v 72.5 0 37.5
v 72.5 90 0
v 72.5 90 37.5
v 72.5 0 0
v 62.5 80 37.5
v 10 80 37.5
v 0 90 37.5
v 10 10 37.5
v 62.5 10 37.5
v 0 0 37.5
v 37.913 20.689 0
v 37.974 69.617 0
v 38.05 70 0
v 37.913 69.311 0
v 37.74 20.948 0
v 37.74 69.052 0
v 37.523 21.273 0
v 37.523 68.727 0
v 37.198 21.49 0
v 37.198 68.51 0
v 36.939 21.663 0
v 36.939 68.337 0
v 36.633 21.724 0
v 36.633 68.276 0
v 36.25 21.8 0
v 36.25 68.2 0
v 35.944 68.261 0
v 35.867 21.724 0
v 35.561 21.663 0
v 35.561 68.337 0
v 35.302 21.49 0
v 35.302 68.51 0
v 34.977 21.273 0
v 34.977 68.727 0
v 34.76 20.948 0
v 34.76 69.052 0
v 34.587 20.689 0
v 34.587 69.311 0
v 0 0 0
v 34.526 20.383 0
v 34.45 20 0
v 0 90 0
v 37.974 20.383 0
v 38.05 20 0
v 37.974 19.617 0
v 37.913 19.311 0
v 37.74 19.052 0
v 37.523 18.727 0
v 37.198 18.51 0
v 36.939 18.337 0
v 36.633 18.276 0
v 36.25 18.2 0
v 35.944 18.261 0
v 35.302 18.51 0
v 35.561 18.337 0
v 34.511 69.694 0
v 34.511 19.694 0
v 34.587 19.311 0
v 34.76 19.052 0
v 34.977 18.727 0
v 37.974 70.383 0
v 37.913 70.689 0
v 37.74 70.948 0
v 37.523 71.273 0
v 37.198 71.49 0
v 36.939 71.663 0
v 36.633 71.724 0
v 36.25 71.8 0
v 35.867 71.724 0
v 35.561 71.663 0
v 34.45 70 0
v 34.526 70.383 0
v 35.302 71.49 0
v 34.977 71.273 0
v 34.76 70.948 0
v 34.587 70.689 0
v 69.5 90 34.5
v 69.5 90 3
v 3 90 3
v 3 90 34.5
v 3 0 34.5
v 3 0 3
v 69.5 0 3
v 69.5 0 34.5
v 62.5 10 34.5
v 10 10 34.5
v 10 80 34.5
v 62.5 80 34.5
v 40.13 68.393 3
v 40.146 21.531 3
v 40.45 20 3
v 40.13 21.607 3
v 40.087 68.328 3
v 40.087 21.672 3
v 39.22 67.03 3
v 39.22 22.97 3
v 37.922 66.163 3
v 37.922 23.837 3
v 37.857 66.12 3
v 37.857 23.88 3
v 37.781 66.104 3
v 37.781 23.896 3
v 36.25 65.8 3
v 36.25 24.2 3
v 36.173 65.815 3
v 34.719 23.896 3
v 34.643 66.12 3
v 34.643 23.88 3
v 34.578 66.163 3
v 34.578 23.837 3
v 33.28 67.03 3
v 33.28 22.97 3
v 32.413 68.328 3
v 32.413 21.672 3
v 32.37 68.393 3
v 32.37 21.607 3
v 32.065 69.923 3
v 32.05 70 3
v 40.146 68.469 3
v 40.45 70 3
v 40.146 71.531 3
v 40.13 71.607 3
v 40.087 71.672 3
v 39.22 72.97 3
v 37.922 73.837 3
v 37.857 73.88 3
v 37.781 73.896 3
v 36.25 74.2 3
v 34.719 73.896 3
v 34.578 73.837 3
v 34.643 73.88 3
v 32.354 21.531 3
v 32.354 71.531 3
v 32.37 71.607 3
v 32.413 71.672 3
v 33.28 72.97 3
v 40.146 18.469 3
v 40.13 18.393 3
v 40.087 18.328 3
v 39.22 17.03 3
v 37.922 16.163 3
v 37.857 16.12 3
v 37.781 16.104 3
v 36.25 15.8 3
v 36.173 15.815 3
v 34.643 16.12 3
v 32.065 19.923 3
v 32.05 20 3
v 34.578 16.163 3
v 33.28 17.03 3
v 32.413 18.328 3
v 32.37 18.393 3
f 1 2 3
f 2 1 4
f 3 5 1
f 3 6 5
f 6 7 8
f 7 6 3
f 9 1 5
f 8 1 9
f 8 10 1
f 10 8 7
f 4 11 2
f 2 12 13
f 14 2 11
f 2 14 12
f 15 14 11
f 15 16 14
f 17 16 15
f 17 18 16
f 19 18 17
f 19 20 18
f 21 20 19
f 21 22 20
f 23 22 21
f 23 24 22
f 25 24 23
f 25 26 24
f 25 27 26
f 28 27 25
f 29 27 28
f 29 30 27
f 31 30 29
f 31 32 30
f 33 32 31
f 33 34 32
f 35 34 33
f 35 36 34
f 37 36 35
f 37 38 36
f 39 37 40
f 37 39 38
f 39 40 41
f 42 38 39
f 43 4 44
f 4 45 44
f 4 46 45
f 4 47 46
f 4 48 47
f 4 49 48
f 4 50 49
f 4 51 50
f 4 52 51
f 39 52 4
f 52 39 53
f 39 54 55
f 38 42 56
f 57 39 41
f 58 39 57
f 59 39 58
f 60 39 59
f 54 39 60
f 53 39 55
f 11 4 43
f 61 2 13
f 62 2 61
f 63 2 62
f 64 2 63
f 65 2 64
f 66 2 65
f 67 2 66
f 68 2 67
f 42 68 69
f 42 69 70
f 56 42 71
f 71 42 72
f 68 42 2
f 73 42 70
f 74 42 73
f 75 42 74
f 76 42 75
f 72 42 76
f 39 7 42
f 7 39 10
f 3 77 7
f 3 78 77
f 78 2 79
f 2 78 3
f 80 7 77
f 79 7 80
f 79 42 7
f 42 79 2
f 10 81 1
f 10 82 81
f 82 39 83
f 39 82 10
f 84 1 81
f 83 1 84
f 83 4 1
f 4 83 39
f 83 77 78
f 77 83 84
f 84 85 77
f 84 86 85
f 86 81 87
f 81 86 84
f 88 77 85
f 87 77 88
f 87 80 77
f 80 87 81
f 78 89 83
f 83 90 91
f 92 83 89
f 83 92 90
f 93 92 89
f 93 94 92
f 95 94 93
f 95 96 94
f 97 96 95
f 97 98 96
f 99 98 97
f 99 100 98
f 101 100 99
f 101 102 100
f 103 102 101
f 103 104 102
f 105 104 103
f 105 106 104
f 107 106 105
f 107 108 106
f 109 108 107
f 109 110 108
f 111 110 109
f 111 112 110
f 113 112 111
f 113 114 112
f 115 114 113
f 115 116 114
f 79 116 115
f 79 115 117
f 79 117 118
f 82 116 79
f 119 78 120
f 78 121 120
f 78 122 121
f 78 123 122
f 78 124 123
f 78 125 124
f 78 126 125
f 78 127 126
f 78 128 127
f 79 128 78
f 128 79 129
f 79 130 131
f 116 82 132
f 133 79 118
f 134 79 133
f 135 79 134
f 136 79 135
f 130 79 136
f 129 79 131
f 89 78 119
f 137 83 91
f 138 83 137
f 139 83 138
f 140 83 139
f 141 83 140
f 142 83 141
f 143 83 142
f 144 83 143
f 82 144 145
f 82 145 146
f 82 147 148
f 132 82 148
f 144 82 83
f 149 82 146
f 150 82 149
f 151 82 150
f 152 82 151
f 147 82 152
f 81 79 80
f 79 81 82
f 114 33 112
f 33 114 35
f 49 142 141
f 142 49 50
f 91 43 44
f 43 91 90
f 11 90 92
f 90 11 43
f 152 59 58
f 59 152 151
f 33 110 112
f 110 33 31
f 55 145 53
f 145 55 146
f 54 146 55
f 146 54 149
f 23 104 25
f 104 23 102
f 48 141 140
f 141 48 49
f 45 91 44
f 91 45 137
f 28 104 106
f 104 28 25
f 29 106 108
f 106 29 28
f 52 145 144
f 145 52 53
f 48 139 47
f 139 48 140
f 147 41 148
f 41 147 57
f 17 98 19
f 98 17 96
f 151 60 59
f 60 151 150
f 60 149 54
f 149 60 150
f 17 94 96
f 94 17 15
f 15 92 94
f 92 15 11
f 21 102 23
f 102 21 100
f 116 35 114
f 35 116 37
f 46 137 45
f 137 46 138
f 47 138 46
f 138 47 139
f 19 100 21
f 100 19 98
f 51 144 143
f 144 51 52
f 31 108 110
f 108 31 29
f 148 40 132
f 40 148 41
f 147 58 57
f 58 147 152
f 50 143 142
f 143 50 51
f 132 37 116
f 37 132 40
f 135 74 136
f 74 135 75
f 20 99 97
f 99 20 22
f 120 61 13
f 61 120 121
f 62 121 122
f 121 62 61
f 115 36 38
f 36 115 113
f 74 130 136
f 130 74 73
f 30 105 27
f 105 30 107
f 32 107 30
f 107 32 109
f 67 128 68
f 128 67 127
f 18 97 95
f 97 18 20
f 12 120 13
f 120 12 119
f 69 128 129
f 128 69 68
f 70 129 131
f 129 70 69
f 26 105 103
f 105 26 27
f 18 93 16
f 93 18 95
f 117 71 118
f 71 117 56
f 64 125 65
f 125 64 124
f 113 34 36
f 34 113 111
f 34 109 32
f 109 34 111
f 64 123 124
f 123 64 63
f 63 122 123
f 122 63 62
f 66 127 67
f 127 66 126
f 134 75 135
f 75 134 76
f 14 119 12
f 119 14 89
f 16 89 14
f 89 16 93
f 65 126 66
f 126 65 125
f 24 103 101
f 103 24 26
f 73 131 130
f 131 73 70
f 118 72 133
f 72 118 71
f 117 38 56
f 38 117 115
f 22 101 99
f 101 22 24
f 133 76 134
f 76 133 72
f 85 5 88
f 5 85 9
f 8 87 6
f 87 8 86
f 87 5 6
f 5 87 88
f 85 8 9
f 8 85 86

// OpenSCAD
// bloc lenovo 120W
largeur = 65.5+1;
hauteur = 30.5+1;
profondeur = 90;

mur = 3;

difference() {
	cube([largeur+mur*2, profondeur, hauteur+mur*2]);
	translate([mur,-10,mur])
		cube([largeur, profondeur+20, hauteur]);
	translate([mur+largeur/2, 20, -1])
		cylinder(mur+2,1,1+mur+1);
	translate([mur+largeur/2, profondeur-20, -1])
		cylinder(mur+2,1,1+mur+1);
	translate([10, 10, hauteur+mur-1])
		cube([largeur+mur*2-20, profondeur-20, mur+2]);
}
